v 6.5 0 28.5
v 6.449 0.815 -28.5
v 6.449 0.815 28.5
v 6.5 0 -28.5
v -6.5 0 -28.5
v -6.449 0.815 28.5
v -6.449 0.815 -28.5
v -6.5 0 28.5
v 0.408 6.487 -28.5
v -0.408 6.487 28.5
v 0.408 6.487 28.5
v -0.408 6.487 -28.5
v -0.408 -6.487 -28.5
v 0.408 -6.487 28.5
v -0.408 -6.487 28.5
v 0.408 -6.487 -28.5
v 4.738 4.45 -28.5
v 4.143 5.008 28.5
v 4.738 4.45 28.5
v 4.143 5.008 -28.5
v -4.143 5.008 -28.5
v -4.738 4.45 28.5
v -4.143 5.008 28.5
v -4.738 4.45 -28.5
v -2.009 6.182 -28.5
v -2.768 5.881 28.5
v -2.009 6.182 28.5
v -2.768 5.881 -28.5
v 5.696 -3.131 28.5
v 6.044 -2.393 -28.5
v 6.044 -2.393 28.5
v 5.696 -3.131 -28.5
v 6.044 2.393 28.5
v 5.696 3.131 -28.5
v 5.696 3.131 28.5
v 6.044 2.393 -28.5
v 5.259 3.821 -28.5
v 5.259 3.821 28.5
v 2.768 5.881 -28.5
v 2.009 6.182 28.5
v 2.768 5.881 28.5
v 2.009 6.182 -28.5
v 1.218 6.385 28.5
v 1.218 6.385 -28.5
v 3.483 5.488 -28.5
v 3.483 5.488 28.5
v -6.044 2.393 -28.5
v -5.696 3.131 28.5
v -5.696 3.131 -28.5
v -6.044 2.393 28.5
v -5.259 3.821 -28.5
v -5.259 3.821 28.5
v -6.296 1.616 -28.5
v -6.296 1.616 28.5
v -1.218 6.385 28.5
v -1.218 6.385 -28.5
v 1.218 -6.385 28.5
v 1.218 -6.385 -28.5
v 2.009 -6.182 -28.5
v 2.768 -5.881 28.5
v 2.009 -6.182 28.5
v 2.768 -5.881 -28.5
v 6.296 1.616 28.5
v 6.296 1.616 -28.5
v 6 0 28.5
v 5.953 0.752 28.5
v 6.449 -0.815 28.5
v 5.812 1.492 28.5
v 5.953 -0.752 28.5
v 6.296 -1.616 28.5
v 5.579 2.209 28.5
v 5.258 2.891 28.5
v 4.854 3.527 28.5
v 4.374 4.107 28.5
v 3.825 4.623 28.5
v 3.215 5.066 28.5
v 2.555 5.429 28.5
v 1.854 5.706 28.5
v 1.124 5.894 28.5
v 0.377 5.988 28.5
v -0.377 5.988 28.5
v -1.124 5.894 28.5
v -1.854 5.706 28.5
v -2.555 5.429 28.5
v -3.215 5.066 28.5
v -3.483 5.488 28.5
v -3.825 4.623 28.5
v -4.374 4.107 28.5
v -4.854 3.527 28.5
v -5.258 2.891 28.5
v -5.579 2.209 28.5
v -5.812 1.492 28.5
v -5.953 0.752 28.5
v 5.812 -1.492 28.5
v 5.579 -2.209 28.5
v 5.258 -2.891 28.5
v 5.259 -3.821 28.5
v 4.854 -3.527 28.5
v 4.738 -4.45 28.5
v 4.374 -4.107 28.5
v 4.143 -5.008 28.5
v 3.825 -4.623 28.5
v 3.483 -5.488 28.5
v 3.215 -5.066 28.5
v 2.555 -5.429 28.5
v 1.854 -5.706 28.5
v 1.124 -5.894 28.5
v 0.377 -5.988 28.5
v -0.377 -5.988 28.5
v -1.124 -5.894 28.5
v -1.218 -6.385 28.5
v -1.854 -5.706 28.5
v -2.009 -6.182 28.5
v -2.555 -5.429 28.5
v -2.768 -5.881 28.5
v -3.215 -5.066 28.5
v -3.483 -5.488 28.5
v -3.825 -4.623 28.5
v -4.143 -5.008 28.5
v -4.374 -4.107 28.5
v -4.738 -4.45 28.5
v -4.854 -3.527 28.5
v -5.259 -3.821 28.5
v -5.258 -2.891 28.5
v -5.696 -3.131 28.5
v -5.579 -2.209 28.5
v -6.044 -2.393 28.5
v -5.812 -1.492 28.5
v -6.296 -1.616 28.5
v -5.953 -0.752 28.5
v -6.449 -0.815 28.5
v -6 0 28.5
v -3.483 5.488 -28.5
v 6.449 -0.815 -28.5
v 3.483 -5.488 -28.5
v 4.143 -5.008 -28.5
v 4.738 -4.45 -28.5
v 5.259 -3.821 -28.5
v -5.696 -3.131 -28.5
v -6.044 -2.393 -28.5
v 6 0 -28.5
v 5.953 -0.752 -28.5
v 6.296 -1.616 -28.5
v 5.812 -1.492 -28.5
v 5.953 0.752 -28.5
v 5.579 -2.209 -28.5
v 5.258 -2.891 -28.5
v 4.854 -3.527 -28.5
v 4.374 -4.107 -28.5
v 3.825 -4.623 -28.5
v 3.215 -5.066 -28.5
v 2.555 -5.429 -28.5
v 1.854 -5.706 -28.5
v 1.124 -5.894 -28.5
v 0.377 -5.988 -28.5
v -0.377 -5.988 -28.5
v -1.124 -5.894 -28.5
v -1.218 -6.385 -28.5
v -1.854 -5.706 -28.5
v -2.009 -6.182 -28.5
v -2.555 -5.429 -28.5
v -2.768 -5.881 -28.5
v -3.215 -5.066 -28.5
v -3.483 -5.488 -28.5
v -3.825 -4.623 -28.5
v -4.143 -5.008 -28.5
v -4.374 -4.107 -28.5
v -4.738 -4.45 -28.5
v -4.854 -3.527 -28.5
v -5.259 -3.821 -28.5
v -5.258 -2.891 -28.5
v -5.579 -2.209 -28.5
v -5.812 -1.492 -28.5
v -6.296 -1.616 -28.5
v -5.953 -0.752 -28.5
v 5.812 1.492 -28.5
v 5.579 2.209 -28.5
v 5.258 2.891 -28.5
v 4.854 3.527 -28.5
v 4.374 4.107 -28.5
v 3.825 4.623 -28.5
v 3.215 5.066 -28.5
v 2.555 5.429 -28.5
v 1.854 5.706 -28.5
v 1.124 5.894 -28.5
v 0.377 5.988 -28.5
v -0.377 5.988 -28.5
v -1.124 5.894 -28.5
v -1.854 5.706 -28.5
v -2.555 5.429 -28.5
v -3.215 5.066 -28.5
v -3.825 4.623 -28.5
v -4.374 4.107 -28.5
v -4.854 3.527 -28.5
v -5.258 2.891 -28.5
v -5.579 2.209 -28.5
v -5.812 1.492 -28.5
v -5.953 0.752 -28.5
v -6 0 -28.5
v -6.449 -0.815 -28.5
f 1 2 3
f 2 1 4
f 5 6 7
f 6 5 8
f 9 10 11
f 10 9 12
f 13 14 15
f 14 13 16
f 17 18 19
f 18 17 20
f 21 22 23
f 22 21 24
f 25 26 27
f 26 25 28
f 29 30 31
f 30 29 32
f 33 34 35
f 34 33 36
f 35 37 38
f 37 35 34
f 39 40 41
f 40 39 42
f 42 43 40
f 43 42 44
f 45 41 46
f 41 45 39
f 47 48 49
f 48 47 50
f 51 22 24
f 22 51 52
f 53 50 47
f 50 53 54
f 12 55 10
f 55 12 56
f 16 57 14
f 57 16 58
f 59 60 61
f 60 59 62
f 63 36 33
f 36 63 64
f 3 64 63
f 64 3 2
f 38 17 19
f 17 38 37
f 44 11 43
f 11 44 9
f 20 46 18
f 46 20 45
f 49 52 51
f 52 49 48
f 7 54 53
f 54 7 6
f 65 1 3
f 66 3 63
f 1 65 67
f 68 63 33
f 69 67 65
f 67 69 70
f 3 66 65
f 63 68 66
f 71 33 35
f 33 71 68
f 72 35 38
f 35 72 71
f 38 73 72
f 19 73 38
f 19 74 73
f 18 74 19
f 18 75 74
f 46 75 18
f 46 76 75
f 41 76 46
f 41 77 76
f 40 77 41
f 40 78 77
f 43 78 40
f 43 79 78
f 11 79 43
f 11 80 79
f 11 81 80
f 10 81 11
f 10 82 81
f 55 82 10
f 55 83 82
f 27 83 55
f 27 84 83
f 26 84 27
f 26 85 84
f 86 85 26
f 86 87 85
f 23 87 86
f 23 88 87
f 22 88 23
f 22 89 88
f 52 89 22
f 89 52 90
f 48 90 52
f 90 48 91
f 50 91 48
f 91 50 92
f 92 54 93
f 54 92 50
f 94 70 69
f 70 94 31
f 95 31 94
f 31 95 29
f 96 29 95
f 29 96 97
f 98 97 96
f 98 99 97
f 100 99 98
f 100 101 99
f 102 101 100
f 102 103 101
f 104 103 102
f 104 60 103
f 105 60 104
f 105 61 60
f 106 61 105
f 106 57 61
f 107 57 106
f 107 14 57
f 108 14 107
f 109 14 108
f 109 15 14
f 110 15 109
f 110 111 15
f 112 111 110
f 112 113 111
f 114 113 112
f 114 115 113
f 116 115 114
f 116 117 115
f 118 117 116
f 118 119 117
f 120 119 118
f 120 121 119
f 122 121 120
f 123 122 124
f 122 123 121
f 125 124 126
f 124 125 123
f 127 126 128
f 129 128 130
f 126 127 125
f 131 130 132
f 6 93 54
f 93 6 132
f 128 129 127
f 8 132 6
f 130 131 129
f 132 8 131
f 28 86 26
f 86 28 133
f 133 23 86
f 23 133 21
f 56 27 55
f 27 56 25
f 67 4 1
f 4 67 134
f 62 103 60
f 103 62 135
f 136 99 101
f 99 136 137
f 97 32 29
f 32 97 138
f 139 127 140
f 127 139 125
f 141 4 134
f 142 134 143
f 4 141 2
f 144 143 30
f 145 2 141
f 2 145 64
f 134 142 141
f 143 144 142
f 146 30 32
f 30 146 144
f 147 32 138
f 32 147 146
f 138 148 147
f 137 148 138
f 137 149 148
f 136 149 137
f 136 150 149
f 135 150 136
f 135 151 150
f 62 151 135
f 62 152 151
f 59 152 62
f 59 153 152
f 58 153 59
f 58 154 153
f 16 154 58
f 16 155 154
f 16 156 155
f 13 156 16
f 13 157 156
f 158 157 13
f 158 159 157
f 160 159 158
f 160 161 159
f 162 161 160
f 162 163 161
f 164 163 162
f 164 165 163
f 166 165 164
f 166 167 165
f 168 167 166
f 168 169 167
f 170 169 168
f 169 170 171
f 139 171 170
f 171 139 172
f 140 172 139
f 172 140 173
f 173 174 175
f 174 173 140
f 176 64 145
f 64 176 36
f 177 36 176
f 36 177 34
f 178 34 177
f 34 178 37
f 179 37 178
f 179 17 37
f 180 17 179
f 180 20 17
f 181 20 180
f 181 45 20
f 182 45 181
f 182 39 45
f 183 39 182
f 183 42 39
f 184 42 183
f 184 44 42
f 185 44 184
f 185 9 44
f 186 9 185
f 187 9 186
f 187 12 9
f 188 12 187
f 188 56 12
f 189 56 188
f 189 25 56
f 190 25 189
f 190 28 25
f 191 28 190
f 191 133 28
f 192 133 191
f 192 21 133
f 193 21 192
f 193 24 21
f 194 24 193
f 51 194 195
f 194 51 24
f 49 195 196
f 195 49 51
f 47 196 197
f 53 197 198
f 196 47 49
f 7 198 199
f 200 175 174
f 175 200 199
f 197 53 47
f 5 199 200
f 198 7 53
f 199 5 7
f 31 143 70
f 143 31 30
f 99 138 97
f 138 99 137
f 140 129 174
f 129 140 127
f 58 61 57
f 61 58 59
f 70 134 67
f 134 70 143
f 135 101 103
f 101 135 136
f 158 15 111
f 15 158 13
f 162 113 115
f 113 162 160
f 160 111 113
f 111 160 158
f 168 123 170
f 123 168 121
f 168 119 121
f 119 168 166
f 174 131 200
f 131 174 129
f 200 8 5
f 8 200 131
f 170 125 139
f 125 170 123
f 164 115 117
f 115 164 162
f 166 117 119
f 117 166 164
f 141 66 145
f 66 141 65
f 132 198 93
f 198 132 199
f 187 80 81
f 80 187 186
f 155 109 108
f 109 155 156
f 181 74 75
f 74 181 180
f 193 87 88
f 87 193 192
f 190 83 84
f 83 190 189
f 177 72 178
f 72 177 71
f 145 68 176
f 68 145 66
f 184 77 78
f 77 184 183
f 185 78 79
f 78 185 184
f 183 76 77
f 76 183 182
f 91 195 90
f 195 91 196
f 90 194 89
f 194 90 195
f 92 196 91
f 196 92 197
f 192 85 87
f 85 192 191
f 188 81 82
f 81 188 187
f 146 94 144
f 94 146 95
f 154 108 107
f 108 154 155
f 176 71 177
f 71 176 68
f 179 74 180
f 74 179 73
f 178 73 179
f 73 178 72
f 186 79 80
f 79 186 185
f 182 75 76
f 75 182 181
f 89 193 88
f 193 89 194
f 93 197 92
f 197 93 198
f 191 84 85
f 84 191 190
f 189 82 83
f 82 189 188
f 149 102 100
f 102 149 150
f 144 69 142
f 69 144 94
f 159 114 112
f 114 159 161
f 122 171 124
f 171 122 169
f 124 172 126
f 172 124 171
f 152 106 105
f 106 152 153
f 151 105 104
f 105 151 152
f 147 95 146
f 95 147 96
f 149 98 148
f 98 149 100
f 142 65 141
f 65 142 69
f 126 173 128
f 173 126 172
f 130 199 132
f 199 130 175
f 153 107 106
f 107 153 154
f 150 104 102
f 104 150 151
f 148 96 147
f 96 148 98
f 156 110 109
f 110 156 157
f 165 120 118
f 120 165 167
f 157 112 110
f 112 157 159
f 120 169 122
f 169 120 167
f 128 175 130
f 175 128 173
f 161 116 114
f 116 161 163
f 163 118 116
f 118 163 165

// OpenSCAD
$fn = 50;


difference() {
	union() {
		translate(v = [0, 0, -28.5000000000]) {
			cylinder(h = 57, r = 6.5000000000);
		}
	}
	union() {
		translate(v = [0, 0, -100.0000000000]) {
			cylinder(h = 200, r = 6);
		}
	}
}
